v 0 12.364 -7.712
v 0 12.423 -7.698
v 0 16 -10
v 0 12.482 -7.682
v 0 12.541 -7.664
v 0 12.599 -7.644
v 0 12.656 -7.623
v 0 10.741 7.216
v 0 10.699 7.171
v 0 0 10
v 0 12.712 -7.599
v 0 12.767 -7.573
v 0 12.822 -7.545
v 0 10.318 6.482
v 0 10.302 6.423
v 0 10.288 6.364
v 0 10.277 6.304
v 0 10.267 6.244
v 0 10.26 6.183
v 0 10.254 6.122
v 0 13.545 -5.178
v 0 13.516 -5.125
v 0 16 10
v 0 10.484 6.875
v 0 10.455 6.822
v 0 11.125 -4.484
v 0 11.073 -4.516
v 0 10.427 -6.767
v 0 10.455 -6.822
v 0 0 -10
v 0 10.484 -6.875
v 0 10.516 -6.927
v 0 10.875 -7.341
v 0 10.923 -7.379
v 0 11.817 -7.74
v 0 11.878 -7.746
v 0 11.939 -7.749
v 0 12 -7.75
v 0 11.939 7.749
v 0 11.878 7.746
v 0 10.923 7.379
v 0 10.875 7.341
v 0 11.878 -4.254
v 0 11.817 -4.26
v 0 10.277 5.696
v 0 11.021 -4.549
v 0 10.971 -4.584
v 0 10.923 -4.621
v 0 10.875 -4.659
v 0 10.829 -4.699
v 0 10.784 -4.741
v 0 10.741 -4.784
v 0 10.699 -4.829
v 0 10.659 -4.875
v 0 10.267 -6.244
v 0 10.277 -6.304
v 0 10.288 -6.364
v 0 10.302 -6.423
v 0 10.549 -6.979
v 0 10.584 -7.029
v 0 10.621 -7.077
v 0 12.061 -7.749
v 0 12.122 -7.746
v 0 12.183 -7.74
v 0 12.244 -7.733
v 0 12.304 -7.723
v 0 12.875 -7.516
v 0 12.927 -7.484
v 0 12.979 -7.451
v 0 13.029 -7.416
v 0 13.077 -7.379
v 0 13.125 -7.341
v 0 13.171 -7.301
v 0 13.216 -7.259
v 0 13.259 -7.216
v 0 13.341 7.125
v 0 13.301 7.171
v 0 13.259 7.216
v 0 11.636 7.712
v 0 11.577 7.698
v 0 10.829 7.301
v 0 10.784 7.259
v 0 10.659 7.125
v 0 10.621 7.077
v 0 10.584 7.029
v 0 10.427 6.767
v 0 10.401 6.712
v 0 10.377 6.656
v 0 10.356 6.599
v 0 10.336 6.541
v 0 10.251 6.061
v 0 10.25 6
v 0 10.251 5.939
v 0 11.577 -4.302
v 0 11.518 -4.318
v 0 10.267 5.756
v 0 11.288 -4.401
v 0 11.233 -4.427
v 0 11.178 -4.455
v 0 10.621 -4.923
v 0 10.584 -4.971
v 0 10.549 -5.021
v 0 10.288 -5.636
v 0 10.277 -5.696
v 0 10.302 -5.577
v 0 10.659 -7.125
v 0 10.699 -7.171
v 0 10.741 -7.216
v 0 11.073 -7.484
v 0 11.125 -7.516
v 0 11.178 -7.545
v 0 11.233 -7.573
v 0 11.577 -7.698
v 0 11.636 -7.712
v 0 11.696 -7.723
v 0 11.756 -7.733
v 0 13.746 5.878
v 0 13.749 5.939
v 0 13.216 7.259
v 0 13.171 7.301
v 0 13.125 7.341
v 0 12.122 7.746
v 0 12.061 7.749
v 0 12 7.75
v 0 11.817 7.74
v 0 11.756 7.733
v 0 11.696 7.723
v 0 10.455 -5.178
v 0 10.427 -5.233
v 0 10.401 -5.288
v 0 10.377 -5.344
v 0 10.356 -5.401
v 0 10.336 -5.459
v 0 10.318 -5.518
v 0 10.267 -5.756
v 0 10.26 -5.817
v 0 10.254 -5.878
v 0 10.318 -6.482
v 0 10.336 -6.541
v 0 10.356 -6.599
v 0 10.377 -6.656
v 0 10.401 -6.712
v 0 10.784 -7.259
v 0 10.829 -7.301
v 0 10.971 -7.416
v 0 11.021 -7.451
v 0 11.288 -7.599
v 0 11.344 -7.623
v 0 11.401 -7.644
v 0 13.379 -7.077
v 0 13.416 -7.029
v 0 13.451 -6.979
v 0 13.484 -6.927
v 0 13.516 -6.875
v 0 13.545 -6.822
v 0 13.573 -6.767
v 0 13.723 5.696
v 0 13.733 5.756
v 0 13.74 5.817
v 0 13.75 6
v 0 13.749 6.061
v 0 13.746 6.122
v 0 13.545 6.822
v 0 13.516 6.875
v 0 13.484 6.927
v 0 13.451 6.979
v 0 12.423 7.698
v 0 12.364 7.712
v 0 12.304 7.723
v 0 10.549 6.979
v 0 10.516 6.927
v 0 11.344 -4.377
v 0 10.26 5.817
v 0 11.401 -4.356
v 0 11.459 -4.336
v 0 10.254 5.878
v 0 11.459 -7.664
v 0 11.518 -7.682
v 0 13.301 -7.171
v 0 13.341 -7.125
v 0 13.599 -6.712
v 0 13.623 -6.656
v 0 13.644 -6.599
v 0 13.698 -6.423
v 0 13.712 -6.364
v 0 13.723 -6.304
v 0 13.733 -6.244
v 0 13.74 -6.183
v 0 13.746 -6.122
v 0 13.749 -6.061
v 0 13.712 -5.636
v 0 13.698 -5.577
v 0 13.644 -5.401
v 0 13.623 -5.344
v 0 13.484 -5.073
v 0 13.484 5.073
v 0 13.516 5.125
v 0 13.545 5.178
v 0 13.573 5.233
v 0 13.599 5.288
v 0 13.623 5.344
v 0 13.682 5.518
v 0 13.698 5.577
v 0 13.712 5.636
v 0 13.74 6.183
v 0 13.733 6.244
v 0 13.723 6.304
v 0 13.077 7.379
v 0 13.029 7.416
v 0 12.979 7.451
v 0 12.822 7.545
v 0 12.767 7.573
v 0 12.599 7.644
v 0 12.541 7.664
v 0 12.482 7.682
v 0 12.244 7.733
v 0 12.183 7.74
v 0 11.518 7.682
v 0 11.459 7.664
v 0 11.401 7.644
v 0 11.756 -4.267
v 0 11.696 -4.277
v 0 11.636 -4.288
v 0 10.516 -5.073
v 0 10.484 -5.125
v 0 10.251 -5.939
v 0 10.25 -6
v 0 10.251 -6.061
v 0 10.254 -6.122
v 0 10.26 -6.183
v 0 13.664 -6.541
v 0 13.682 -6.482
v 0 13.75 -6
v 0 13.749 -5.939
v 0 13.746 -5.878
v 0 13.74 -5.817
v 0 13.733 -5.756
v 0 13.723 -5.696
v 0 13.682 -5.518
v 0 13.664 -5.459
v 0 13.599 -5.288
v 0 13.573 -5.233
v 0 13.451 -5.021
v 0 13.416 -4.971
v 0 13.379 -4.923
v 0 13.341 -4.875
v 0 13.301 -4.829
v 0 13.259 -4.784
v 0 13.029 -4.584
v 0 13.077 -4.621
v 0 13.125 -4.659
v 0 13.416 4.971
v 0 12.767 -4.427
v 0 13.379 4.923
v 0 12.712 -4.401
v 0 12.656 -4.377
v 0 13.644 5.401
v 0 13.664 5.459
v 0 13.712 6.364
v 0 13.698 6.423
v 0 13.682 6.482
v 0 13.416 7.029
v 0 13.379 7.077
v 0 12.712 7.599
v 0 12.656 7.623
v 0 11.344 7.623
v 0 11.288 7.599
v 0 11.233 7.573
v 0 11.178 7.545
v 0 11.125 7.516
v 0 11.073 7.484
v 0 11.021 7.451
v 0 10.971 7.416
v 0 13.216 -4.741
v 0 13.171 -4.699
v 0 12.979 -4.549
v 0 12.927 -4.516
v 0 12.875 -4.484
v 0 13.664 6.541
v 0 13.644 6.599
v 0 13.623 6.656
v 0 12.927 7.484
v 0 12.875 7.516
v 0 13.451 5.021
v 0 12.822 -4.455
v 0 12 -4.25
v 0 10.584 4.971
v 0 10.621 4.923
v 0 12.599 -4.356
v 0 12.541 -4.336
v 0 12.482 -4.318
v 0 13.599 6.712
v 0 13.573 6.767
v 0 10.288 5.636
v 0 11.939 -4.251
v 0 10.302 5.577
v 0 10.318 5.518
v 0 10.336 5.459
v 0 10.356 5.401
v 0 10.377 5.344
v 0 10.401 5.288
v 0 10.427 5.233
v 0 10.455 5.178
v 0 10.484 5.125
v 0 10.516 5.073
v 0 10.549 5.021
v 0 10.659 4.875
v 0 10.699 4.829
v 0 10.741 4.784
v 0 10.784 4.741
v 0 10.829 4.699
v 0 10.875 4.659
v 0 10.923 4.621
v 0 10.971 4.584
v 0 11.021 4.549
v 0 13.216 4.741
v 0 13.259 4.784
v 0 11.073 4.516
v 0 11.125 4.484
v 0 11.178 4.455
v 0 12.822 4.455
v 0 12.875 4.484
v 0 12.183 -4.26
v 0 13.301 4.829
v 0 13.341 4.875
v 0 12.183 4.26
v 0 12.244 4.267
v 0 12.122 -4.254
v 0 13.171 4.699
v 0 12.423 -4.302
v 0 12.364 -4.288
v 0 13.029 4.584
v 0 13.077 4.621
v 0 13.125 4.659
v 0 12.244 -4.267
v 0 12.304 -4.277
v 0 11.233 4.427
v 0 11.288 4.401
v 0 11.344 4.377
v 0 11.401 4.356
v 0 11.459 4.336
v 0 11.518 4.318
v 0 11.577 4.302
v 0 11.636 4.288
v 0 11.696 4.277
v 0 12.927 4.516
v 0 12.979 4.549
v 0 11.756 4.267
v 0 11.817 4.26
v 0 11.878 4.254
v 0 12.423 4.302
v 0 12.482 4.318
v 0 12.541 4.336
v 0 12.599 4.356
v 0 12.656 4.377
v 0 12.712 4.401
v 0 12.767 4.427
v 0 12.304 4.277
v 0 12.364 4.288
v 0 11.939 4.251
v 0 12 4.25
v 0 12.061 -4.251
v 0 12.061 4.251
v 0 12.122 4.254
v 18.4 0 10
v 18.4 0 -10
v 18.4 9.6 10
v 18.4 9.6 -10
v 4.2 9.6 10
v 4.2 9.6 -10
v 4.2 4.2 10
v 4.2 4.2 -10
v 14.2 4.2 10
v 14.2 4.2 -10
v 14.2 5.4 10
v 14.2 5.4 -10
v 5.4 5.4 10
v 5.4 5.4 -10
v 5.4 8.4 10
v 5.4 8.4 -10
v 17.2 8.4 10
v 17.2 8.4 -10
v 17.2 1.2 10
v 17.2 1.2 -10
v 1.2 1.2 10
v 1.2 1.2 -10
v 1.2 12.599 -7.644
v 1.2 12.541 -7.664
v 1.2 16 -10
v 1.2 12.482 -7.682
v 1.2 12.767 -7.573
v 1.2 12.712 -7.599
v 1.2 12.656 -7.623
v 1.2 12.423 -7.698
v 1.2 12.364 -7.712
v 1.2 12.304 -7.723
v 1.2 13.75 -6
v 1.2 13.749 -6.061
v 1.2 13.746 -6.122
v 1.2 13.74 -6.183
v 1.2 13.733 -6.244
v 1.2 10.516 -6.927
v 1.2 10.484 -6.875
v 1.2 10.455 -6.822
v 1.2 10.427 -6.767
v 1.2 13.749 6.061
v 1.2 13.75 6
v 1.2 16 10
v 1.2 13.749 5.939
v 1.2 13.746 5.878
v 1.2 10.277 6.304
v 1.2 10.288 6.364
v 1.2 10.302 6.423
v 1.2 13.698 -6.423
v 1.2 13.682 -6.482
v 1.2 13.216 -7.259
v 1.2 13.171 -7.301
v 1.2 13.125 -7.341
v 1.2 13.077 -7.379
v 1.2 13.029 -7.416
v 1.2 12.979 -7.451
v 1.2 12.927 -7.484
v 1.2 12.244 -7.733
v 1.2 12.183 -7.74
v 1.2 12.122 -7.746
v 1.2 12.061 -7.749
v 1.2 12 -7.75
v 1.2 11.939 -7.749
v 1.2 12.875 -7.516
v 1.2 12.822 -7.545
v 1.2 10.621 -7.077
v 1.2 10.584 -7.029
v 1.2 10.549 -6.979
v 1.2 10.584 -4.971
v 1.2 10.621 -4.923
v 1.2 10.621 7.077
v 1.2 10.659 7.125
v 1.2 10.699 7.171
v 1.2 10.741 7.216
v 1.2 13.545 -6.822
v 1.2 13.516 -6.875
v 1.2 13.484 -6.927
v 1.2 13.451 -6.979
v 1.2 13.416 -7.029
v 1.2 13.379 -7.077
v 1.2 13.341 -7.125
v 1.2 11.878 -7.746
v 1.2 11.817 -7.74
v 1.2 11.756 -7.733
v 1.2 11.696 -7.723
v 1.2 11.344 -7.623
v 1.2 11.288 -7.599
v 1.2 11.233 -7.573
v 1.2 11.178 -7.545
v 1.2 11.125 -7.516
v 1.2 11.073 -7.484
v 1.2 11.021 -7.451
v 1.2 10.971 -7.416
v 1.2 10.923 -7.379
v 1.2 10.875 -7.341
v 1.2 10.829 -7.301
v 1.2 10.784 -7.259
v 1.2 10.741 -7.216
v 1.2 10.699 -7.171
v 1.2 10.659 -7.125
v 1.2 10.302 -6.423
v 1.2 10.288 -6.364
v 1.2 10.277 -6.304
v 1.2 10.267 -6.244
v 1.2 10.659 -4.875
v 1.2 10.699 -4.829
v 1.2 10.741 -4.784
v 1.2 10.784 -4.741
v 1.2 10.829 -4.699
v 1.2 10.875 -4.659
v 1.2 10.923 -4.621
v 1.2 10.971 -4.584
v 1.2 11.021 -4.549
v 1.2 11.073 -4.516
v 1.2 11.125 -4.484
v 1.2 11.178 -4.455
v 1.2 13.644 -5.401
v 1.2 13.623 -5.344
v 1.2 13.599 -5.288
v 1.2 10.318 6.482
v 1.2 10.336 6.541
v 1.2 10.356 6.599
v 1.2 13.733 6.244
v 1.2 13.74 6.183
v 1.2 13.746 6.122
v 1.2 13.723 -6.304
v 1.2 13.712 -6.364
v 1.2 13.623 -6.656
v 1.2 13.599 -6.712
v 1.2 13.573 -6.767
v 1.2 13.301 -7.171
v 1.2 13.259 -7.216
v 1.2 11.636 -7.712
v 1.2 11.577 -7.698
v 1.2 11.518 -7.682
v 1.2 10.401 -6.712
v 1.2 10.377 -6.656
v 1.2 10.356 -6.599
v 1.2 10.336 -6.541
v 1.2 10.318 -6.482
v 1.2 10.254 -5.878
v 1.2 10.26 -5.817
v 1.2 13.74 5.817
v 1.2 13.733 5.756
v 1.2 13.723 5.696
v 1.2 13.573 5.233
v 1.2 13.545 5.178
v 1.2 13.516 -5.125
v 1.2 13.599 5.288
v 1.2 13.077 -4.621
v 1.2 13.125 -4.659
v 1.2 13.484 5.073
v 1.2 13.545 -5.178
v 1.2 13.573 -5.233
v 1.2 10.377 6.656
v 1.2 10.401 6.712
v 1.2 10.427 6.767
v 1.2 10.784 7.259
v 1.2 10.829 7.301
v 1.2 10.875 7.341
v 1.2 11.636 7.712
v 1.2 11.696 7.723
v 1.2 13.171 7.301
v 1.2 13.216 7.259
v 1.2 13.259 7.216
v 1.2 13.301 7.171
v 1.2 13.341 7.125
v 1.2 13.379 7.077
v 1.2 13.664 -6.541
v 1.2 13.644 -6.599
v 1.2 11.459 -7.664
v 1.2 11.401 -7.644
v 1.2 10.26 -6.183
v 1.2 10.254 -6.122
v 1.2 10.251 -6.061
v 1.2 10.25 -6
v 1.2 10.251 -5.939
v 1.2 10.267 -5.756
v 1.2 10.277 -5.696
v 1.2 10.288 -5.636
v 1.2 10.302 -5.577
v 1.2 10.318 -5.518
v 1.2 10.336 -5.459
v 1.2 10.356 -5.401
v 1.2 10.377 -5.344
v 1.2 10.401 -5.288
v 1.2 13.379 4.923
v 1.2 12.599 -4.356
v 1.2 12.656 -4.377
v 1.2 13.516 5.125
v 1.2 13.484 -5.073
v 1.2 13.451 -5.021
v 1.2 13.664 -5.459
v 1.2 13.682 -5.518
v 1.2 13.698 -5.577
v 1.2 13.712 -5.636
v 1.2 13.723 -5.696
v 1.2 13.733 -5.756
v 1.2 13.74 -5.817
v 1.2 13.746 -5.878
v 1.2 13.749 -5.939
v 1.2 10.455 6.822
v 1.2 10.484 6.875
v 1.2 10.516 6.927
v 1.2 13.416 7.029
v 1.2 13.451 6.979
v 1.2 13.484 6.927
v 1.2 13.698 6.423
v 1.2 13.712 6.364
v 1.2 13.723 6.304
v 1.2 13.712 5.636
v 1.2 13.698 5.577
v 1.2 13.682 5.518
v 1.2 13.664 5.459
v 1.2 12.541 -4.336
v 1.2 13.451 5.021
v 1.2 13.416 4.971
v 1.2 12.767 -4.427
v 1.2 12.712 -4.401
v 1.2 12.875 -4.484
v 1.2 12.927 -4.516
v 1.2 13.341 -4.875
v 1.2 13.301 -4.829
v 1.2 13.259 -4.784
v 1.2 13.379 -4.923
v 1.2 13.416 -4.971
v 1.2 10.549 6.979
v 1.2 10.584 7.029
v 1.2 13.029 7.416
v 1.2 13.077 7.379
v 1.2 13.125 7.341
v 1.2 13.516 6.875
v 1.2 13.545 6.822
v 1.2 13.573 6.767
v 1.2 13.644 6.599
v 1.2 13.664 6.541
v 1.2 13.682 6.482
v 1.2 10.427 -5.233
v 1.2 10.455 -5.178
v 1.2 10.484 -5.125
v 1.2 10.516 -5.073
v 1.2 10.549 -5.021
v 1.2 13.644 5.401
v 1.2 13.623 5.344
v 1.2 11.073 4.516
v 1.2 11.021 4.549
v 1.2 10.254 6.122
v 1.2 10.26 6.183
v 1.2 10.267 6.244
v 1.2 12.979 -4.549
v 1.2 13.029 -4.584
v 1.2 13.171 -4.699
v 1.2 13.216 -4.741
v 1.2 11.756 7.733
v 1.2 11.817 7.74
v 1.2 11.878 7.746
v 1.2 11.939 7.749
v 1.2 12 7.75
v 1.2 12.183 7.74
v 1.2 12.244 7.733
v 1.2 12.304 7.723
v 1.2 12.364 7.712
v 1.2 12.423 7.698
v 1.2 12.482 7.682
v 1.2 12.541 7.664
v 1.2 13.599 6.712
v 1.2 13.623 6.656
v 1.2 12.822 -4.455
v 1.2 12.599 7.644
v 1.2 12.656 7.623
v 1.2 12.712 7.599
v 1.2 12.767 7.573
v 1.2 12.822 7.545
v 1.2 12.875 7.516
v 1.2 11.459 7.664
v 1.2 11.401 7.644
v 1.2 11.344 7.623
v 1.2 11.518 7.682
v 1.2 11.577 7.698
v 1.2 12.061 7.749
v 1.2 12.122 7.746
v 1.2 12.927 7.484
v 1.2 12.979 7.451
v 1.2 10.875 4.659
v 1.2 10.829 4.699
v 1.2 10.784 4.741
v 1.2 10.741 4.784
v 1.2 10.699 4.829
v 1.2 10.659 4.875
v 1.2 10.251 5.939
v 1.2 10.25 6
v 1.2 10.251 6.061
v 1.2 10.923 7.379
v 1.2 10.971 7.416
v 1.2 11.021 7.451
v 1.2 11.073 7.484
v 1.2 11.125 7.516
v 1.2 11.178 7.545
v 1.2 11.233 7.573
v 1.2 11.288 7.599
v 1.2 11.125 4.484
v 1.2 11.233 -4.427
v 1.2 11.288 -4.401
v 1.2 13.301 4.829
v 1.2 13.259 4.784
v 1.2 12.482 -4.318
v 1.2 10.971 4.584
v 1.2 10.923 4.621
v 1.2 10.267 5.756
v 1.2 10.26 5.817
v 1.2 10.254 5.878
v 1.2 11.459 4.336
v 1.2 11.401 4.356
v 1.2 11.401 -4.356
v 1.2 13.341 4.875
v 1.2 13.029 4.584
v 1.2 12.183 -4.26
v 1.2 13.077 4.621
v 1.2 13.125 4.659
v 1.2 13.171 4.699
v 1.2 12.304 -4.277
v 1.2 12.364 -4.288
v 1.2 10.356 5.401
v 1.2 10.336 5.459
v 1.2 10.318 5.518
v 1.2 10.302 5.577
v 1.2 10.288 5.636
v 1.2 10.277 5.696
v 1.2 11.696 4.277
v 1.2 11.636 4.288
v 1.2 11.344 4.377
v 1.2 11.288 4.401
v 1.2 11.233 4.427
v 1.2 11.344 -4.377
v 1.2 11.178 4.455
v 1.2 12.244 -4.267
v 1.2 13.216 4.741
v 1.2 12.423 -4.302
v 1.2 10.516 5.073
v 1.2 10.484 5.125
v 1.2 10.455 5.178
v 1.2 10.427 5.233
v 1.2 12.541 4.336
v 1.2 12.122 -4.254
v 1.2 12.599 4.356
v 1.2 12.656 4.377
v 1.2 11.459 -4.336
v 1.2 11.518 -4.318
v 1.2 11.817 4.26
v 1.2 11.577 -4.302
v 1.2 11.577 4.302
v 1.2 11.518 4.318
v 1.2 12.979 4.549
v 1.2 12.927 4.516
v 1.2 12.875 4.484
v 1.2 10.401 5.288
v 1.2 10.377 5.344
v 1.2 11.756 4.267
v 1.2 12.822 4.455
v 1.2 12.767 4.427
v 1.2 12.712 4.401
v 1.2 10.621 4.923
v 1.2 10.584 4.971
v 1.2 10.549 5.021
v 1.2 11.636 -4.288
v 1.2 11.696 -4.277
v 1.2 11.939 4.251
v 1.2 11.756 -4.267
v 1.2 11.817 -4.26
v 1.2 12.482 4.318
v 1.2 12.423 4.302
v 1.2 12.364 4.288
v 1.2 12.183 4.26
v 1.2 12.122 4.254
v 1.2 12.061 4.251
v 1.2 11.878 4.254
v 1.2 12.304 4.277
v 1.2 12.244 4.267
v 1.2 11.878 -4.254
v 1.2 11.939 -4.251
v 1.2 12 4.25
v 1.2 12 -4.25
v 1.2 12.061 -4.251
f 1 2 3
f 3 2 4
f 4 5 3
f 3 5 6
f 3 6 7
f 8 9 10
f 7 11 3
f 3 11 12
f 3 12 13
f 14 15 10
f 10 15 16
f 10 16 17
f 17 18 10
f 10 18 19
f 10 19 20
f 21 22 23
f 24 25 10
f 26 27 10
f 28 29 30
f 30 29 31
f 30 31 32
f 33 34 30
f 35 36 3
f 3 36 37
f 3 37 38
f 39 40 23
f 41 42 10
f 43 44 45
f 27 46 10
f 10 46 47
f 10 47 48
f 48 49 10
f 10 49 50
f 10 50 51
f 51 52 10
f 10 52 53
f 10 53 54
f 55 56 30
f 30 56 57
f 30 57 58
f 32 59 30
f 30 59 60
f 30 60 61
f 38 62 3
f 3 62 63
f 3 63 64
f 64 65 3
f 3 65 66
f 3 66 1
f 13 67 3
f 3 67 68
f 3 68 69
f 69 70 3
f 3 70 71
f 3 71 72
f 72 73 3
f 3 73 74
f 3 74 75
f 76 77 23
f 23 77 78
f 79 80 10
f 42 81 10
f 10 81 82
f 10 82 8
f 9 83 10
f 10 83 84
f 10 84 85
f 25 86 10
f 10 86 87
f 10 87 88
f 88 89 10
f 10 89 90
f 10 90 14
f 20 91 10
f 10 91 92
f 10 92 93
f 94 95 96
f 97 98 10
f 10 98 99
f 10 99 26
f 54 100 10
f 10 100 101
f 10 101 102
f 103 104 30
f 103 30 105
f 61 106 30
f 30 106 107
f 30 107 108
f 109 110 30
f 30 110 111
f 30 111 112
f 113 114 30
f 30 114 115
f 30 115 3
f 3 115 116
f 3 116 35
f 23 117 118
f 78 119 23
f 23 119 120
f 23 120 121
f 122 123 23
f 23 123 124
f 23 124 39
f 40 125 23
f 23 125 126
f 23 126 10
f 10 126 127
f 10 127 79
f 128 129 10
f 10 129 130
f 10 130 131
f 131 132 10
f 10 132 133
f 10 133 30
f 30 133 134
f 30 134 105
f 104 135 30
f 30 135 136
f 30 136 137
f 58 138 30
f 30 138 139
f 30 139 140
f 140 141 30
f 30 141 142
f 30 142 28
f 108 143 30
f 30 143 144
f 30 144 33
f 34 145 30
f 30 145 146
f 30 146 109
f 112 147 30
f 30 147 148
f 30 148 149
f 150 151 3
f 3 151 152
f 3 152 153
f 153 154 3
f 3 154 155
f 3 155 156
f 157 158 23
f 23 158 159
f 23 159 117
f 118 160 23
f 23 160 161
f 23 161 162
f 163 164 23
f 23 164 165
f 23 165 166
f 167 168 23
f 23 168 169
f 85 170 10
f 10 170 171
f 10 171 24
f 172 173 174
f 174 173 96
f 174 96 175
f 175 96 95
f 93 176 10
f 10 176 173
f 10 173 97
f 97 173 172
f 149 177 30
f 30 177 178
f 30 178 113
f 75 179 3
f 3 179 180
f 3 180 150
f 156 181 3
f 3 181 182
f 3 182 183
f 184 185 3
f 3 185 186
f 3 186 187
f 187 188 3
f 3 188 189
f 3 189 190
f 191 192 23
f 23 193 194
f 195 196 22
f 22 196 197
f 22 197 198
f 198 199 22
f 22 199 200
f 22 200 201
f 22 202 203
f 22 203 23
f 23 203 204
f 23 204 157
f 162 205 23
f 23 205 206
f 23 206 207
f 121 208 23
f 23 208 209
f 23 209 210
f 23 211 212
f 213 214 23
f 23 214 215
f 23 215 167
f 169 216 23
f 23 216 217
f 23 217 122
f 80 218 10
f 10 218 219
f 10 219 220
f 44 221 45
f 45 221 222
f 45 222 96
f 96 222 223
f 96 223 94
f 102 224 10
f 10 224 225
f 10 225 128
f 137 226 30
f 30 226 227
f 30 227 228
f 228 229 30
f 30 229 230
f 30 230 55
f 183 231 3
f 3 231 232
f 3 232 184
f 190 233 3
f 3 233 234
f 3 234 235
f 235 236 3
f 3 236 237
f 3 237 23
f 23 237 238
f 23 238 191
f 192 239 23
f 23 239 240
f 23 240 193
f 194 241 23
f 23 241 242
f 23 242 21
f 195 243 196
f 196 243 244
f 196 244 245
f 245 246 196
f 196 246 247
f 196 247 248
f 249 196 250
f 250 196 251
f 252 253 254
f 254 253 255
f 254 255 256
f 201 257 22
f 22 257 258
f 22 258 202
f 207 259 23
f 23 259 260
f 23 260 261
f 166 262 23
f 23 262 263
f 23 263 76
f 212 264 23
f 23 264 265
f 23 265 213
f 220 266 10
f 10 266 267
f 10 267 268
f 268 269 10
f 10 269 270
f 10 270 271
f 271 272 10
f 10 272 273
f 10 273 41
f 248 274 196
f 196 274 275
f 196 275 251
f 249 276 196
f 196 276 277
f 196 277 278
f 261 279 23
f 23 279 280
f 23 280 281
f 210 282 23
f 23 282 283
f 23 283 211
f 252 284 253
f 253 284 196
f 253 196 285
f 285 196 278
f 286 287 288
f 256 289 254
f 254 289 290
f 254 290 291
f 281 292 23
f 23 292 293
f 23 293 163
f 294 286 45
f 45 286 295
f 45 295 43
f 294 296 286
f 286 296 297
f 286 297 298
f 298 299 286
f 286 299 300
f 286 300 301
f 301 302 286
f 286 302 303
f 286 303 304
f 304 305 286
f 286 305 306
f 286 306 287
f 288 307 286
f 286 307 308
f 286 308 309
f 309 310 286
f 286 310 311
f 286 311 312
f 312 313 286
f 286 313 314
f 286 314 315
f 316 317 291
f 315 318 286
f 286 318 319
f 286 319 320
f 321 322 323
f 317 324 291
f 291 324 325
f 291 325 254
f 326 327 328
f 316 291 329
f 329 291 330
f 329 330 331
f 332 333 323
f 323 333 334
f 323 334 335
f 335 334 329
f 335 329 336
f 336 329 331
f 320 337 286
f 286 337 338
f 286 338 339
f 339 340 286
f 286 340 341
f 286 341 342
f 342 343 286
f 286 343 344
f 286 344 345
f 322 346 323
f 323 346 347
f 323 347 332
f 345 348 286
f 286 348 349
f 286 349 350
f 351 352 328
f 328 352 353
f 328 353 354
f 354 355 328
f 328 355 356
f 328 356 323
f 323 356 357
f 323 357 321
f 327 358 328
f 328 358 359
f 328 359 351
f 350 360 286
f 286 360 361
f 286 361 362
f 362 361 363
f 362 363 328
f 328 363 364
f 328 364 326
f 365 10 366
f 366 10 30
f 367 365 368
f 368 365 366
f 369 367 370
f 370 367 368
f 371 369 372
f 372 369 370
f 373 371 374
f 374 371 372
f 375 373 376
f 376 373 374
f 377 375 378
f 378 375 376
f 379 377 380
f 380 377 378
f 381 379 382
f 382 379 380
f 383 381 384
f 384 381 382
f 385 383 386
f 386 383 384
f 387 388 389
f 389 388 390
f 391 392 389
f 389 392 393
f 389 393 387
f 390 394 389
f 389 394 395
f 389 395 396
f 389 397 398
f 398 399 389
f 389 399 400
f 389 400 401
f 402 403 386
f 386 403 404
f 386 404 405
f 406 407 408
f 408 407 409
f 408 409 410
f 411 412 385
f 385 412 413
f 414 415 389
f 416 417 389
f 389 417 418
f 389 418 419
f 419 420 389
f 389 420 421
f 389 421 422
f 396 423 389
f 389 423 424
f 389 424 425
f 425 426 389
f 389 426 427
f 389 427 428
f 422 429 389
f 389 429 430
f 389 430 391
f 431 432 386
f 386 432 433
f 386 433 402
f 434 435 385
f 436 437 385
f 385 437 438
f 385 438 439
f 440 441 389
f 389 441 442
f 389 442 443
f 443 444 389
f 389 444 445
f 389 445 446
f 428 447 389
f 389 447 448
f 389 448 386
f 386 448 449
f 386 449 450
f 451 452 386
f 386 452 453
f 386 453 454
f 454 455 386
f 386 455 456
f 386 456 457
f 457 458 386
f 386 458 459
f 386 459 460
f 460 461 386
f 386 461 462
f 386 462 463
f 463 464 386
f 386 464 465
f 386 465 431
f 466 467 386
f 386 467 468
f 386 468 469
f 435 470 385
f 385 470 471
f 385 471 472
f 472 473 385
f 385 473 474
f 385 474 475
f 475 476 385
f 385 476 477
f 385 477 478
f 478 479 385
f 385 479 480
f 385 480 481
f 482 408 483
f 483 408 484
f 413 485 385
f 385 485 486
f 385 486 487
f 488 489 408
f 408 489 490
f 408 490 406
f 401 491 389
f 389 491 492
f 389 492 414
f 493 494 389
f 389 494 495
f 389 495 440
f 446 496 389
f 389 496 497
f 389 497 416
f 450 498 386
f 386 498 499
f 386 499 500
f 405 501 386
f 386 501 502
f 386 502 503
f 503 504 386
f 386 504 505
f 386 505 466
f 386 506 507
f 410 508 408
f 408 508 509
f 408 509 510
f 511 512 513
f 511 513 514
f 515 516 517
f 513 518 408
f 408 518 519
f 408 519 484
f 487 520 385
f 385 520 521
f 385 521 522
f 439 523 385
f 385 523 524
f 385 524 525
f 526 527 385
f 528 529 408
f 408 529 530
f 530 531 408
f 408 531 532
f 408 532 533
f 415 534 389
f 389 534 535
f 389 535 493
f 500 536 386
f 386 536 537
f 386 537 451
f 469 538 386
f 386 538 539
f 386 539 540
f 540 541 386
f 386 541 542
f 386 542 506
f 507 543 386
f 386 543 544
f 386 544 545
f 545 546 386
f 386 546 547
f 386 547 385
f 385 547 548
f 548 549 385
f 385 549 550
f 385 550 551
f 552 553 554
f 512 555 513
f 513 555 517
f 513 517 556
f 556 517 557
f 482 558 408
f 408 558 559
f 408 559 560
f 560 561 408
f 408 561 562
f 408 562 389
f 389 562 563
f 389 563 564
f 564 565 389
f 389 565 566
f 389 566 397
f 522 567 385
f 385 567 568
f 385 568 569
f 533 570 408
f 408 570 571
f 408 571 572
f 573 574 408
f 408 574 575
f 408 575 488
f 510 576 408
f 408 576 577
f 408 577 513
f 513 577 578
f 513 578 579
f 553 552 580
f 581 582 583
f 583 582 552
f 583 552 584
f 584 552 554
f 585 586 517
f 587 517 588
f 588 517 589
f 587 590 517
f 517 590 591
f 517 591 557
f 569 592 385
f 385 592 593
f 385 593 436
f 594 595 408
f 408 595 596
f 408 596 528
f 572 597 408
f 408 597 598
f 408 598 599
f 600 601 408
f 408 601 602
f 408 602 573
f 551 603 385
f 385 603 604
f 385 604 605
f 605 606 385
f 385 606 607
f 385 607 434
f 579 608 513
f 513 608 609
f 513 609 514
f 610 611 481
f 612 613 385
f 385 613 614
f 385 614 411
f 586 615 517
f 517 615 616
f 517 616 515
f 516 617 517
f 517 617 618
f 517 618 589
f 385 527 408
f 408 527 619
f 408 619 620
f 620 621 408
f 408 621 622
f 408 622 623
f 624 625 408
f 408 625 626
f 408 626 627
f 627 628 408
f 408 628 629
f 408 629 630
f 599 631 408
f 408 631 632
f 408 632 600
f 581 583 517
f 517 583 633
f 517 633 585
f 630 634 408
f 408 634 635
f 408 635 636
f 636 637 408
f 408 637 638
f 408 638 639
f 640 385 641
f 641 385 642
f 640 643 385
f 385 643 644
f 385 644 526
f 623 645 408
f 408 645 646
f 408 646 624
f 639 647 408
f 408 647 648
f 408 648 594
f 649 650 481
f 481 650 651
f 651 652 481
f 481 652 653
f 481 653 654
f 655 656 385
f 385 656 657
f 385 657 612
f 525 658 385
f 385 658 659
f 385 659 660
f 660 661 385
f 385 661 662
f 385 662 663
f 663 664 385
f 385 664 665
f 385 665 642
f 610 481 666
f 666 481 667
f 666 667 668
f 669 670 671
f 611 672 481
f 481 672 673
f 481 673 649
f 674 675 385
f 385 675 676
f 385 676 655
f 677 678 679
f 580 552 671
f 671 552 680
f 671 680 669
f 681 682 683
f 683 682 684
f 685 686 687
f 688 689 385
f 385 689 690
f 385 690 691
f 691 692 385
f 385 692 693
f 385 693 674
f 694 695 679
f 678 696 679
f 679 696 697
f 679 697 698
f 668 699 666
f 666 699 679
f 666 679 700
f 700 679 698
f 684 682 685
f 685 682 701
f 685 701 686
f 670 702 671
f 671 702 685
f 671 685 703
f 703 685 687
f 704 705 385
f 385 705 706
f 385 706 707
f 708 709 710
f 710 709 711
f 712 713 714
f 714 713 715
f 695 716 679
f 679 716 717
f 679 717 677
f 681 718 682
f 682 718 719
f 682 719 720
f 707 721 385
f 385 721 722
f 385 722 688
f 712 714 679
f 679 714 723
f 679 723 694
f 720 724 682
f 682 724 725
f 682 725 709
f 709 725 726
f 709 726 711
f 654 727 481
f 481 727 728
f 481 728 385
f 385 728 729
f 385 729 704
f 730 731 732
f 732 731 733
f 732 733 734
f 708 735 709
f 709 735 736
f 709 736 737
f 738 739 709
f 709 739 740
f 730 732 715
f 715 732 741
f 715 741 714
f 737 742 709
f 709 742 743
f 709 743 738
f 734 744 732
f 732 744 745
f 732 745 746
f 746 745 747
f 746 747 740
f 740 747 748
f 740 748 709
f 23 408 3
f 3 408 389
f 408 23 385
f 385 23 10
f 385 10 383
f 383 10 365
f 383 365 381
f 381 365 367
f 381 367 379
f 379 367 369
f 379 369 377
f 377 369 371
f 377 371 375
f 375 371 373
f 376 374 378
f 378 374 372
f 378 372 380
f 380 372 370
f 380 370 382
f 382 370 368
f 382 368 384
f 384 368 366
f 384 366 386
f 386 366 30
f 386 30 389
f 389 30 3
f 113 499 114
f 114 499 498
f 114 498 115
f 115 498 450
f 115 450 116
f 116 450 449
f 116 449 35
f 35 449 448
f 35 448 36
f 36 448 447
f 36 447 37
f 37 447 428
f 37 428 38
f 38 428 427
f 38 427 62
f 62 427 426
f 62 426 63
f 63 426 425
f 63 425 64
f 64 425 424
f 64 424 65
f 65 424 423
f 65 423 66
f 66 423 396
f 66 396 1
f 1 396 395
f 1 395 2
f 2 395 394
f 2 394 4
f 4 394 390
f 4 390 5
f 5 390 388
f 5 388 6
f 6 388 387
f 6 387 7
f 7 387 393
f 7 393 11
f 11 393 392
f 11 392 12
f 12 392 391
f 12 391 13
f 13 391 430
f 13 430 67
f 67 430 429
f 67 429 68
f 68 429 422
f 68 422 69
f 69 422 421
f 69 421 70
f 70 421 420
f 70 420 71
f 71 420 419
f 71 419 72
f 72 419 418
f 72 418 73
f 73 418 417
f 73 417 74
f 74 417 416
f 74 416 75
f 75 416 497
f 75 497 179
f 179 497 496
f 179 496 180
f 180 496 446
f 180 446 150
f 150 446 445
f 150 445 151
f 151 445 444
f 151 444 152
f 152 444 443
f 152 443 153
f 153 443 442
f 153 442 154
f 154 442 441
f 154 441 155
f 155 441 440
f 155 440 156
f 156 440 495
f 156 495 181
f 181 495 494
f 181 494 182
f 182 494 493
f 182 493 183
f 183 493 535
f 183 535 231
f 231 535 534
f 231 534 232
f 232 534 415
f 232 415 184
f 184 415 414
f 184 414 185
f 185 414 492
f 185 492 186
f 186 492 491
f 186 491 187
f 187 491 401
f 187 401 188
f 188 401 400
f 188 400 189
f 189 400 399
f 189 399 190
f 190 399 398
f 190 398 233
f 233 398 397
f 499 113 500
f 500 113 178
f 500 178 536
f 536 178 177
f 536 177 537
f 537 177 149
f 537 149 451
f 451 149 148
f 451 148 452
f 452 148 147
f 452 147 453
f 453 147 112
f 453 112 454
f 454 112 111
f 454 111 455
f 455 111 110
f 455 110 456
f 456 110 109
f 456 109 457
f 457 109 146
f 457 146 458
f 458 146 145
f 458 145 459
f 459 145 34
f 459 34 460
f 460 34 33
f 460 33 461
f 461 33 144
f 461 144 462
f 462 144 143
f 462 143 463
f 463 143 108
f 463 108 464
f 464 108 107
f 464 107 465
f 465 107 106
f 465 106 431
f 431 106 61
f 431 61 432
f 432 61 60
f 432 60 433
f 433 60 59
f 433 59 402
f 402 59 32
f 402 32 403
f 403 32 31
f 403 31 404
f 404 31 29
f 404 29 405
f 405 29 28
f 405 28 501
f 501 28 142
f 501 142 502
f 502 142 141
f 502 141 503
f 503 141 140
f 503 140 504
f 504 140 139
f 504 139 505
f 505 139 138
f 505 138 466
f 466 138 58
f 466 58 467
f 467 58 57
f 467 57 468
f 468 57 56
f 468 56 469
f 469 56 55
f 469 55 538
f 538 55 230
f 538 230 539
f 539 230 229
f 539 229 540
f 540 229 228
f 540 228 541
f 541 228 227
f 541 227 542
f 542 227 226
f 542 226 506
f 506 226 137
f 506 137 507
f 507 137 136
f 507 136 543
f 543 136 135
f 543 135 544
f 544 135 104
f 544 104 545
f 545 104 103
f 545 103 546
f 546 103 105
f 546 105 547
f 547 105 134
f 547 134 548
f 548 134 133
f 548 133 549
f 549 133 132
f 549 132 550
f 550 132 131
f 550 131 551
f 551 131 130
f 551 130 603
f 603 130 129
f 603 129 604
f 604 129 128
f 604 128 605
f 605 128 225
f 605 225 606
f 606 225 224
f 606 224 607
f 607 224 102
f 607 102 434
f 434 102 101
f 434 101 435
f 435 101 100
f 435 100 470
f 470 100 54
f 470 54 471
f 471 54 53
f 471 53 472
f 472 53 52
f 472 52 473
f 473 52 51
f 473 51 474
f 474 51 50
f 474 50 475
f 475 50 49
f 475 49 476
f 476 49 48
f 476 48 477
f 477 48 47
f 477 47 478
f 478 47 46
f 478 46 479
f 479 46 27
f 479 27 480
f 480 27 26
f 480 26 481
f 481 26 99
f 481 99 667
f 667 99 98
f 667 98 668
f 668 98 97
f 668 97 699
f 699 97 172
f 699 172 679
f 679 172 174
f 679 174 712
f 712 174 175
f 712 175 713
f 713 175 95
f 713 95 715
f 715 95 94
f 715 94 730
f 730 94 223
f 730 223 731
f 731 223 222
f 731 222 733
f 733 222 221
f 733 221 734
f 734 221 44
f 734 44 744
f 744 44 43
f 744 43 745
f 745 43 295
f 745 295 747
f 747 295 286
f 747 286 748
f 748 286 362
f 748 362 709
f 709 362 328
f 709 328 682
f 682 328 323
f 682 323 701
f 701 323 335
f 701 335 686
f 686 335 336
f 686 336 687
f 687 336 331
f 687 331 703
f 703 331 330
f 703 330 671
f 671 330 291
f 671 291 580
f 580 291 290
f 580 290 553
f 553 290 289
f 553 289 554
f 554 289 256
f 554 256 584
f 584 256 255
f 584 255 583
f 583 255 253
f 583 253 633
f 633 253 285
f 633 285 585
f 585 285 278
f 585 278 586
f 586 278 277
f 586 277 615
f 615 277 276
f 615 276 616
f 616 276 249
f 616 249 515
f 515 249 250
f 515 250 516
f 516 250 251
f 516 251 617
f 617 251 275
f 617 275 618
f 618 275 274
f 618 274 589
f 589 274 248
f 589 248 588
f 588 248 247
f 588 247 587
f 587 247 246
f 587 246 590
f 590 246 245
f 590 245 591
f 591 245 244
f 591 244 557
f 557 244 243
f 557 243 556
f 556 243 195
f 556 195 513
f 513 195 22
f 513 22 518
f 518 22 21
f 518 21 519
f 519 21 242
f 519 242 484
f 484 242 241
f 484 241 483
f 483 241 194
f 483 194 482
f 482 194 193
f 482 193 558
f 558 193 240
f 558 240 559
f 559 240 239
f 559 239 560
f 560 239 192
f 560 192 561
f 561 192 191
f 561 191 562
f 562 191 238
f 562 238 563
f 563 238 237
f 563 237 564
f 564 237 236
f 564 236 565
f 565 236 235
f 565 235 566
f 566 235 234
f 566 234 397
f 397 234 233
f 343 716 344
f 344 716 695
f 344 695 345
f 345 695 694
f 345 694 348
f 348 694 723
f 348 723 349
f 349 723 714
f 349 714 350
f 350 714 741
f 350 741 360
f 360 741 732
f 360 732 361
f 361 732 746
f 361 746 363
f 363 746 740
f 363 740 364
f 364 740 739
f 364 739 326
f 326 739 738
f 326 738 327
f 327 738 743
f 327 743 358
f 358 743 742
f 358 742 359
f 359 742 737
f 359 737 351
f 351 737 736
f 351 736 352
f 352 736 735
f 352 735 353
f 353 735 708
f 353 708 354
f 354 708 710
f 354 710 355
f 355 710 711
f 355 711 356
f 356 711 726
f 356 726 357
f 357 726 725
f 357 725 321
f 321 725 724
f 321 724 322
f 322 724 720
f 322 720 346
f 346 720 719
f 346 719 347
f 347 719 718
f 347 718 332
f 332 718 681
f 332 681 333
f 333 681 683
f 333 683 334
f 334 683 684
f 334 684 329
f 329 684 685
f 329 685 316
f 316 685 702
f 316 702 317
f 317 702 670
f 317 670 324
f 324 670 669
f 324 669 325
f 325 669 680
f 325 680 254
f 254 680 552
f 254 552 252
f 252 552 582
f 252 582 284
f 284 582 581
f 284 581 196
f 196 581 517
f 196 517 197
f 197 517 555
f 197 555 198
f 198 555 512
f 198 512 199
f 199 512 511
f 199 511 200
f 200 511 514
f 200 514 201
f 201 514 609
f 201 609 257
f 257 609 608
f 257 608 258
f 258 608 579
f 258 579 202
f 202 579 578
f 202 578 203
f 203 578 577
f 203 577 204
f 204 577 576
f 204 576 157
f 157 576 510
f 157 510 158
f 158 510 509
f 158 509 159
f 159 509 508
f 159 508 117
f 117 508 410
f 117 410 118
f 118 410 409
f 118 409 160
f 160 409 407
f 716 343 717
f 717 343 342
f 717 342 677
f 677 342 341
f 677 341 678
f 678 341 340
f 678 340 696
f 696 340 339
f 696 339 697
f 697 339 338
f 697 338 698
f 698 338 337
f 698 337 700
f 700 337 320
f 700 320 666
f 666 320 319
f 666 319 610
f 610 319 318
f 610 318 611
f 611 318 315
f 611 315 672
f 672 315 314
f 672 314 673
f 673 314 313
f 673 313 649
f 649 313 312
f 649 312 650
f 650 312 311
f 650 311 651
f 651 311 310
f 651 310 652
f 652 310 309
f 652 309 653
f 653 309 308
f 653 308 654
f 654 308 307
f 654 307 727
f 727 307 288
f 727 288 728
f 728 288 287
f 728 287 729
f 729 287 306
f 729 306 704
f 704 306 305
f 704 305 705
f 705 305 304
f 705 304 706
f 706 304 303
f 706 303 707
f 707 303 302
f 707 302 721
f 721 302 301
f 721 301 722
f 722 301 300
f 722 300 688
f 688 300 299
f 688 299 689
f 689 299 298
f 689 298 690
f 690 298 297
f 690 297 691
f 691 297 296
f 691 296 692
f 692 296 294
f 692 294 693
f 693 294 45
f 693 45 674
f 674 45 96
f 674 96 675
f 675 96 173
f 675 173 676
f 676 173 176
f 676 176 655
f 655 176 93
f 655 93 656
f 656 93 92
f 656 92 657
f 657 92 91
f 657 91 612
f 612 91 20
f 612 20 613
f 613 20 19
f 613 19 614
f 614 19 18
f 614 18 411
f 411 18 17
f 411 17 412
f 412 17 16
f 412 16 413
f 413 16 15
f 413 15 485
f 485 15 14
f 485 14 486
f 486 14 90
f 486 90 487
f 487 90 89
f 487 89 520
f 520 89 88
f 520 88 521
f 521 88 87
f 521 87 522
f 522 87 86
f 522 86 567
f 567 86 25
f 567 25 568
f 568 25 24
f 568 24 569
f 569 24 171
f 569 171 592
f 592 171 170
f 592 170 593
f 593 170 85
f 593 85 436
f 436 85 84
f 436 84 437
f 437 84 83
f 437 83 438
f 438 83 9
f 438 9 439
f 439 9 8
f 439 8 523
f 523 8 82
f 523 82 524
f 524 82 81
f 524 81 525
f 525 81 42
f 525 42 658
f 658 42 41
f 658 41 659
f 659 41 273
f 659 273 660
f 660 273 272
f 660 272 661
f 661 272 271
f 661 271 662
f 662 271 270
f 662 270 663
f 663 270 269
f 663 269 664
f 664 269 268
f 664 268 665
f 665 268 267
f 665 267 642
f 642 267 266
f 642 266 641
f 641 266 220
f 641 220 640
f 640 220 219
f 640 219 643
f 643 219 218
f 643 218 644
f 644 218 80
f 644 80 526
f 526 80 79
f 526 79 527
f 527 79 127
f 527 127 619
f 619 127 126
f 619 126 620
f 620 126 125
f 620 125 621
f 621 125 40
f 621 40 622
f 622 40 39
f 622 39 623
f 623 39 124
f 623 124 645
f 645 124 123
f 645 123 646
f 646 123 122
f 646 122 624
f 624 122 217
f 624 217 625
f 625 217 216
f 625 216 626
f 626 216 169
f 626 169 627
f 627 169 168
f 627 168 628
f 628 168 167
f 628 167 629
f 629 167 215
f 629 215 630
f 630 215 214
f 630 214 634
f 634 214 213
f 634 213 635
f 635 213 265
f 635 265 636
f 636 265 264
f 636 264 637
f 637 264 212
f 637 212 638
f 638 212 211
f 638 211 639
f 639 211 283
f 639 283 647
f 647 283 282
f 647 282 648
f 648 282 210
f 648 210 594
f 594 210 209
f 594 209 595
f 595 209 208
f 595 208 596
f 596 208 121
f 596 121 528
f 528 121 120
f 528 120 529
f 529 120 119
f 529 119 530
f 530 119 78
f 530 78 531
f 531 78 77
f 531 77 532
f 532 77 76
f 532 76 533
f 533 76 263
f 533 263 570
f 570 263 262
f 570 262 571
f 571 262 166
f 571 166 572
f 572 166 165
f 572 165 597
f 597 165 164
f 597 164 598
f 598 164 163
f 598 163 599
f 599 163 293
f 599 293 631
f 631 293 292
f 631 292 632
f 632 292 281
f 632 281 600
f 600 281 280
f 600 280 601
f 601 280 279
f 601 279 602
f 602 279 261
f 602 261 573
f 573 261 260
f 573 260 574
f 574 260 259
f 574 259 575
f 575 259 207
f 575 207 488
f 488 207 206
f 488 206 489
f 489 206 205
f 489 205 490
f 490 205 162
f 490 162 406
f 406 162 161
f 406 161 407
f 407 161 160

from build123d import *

# Parameters (mm, degrees)
BOSS_EXTRUDE1_DEPTH = 10
SKETCH2_R           = 1.75
CUT_EXTRUDE1_DEPTH  = 10


with BuildPart() as part:
    # Sketch1 → Boss-Extrude1 (new, symmetric)
    with BuildSketch(Plane.XY):
        Polygon((0, 0), (18.4, 0), (18.4, 9.6), (4.2, 9.6), (4.2, 4.2), (14.2, 4.2), (14.2, 5.4), (5.4, 5.4), (5.4, 8.4), (17.2, 8.4), (17.2, 1.2), (1.2, 1.2), (1.2, 16), (0, 16), align=None)
    extrude(amount=BOSS_EXTRUDE1_DEPTH, both=True)

    # Sketch2 → Cut-Extrude1 (cut, symmetric)
    with BuildSketch(Plane(origin=(1.2, 0, 0), x_dir=(0, 0, -1), z_dir=(1, 0, 0))):
        with Locations((-6, 12)):
            Circle(SKETCH2_R)
        with Locations((6, 12)):
            Circle(SKETCH2_R)
    extrude(amount=CUT_EXTRUDE1_DEPTH, both=True, mode=Mode.SUBTRACT)


solid = part.part
